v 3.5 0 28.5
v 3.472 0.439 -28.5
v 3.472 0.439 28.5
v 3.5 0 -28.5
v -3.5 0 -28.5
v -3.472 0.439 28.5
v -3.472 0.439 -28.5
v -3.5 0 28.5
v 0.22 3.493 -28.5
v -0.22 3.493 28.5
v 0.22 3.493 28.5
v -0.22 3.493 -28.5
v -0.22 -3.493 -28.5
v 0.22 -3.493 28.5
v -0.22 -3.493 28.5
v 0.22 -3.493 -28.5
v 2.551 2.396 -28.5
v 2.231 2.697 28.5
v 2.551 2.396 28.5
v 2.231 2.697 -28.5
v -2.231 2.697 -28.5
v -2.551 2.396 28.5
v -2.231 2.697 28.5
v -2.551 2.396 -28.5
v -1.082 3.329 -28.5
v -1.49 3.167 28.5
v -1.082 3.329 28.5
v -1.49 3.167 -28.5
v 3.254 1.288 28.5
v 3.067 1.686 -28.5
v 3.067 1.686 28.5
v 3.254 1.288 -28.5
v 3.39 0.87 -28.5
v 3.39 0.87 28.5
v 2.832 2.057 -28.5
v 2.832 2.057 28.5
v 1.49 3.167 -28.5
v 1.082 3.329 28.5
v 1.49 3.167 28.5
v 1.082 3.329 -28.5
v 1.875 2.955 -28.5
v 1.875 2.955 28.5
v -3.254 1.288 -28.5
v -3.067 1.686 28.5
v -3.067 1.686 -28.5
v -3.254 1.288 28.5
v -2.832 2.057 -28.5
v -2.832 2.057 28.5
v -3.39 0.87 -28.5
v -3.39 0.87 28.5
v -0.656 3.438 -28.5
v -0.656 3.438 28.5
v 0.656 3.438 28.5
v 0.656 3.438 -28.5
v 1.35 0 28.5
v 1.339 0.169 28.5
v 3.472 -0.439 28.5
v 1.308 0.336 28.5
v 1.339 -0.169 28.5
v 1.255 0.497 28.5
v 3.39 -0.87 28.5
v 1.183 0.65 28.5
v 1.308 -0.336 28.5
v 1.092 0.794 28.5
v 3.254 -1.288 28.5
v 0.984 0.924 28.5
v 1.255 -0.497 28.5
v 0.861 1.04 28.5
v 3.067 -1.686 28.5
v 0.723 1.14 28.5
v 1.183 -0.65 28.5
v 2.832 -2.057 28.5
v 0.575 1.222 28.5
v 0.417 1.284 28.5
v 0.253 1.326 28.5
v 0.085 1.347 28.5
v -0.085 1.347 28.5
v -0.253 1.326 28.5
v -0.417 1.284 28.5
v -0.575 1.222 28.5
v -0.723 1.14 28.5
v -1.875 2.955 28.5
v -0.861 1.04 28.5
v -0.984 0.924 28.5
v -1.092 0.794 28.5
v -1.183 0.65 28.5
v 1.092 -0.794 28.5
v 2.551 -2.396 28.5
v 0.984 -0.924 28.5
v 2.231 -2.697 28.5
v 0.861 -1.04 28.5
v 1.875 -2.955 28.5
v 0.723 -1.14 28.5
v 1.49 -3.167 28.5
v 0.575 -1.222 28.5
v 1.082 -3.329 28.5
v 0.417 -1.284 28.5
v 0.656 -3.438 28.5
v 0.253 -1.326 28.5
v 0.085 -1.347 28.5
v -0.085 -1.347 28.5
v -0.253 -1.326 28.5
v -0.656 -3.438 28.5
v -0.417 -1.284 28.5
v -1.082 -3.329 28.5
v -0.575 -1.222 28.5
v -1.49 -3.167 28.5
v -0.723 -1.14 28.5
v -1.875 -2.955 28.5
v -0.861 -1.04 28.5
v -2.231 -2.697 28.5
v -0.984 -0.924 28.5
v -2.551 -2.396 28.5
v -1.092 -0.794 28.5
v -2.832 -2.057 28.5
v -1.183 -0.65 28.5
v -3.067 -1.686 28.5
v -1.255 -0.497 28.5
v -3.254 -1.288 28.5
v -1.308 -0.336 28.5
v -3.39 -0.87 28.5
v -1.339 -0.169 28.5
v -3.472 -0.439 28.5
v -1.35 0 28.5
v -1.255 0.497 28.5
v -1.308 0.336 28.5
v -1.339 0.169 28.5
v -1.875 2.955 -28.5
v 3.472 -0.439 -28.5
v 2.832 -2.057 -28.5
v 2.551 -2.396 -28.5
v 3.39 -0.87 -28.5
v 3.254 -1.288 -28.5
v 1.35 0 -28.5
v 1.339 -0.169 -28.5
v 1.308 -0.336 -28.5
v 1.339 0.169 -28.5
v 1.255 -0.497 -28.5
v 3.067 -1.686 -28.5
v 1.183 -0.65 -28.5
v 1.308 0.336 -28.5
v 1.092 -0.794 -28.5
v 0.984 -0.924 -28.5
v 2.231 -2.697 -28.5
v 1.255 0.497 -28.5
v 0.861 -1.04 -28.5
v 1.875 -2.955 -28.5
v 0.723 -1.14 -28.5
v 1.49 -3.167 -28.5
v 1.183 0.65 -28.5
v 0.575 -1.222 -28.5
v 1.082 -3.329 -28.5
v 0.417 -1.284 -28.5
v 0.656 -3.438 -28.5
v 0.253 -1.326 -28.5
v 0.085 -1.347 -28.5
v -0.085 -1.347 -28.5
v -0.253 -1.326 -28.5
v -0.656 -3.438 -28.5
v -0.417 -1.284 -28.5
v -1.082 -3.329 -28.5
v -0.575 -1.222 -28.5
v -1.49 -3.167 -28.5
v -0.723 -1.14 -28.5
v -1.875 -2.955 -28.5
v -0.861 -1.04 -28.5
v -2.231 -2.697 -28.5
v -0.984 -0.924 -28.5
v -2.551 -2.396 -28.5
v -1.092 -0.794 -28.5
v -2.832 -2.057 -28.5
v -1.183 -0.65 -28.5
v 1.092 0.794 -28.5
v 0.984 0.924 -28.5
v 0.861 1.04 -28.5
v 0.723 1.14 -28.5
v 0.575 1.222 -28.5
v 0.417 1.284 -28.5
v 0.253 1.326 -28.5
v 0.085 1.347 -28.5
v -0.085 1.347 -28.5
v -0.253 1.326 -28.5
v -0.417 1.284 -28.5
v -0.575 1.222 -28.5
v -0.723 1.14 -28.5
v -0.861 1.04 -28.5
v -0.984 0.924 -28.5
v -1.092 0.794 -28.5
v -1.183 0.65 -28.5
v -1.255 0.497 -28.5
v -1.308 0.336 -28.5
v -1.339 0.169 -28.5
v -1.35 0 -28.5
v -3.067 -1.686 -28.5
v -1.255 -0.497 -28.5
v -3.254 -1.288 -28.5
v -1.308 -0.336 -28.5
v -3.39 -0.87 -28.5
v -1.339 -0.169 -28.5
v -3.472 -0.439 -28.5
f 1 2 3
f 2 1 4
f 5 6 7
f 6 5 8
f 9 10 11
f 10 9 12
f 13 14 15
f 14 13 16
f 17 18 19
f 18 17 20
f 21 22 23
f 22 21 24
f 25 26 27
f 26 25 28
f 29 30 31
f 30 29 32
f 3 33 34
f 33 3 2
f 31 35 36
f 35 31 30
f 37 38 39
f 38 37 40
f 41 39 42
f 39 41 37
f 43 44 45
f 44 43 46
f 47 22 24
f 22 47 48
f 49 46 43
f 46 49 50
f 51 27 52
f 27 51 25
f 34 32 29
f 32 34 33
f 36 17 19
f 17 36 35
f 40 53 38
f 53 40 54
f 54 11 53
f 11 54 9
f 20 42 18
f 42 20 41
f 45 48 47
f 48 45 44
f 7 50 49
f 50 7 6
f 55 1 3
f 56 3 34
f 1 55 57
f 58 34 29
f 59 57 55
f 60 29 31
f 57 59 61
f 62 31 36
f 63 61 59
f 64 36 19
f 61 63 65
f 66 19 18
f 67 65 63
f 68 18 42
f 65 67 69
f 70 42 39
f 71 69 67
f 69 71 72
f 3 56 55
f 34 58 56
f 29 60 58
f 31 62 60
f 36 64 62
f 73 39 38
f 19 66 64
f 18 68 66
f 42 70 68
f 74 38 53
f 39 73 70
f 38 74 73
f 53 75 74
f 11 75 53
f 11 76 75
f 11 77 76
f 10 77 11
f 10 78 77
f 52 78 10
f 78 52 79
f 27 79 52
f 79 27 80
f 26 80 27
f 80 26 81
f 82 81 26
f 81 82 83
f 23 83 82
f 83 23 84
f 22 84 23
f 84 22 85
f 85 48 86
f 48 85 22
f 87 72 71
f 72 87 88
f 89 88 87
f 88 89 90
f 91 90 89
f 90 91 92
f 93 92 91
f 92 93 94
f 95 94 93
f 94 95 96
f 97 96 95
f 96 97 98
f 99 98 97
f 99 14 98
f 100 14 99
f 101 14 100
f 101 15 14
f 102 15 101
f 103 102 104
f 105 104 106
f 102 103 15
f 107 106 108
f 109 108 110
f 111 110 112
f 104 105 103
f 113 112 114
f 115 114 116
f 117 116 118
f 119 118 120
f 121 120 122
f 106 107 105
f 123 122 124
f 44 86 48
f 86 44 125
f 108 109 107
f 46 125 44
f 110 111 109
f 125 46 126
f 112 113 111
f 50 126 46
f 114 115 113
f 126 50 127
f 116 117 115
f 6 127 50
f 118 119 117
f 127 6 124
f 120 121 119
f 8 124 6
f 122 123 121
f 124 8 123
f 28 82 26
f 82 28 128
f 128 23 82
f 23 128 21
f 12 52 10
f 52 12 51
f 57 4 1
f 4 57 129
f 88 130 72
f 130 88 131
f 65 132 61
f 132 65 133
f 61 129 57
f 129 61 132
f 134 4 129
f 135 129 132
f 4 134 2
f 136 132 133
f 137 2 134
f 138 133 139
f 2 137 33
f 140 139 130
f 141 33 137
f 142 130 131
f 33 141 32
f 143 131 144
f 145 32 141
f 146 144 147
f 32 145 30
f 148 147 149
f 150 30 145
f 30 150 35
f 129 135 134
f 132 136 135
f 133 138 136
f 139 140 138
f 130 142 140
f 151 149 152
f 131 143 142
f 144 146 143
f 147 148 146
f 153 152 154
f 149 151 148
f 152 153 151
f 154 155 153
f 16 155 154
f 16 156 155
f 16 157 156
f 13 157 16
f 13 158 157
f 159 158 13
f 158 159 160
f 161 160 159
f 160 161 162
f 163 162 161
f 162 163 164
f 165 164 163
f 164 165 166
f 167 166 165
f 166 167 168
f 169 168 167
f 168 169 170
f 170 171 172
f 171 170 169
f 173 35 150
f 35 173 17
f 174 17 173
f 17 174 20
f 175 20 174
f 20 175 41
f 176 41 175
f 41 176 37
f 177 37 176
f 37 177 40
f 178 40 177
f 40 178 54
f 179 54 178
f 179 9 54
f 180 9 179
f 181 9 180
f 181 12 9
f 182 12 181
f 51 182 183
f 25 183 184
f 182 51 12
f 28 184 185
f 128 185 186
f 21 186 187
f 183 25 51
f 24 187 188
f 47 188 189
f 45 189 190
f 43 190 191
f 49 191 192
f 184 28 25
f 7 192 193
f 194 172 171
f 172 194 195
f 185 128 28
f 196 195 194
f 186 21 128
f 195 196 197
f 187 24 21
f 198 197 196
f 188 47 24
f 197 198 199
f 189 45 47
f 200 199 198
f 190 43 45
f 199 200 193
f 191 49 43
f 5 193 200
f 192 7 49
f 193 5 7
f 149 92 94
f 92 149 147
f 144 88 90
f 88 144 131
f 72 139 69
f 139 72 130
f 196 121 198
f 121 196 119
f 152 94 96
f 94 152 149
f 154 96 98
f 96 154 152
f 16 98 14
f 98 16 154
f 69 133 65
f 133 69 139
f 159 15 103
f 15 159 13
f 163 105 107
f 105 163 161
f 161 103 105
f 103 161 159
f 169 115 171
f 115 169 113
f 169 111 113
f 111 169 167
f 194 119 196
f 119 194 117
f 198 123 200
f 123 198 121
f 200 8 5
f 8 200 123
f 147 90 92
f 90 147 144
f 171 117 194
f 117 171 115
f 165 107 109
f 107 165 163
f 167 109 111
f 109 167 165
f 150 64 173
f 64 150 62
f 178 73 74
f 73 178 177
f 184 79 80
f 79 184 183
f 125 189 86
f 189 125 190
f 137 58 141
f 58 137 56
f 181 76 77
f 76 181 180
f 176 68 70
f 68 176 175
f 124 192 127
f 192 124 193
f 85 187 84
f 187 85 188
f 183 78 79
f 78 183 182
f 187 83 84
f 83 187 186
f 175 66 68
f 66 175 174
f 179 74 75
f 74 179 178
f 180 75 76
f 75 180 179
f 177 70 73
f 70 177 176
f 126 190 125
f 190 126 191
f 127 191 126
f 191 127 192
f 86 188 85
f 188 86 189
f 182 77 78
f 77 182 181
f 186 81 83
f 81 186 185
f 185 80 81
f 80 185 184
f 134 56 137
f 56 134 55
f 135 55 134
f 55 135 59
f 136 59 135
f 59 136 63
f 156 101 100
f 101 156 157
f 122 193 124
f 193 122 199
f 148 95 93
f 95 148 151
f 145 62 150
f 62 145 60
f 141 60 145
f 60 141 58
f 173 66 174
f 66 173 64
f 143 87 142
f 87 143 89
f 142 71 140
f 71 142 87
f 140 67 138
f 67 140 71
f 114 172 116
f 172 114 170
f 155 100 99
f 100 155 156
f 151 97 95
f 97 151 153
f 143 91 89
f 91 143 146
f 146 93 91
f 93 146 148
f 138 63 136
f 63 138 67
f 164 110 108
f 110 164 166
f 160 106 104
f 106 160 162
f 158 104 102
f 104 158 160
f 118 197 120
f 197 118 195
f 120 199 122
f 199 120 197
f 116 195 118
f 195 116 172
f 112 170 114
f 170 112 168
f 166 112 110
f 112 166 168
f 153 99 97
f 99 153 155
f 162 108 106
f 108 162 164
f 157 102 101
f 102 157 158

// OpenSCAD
$fn = 50;


difference() {
	union() {
		translate(v = [0, 0, -28.5000000000]) {
			cylinder(h = 57, r = 3.5000000000);
		}
	}
	union() {
		translate(v = [0, 0, -100.0000000000]) {
			cylinder(h = 200, r = 1.3500000000);
		}
	}
}
